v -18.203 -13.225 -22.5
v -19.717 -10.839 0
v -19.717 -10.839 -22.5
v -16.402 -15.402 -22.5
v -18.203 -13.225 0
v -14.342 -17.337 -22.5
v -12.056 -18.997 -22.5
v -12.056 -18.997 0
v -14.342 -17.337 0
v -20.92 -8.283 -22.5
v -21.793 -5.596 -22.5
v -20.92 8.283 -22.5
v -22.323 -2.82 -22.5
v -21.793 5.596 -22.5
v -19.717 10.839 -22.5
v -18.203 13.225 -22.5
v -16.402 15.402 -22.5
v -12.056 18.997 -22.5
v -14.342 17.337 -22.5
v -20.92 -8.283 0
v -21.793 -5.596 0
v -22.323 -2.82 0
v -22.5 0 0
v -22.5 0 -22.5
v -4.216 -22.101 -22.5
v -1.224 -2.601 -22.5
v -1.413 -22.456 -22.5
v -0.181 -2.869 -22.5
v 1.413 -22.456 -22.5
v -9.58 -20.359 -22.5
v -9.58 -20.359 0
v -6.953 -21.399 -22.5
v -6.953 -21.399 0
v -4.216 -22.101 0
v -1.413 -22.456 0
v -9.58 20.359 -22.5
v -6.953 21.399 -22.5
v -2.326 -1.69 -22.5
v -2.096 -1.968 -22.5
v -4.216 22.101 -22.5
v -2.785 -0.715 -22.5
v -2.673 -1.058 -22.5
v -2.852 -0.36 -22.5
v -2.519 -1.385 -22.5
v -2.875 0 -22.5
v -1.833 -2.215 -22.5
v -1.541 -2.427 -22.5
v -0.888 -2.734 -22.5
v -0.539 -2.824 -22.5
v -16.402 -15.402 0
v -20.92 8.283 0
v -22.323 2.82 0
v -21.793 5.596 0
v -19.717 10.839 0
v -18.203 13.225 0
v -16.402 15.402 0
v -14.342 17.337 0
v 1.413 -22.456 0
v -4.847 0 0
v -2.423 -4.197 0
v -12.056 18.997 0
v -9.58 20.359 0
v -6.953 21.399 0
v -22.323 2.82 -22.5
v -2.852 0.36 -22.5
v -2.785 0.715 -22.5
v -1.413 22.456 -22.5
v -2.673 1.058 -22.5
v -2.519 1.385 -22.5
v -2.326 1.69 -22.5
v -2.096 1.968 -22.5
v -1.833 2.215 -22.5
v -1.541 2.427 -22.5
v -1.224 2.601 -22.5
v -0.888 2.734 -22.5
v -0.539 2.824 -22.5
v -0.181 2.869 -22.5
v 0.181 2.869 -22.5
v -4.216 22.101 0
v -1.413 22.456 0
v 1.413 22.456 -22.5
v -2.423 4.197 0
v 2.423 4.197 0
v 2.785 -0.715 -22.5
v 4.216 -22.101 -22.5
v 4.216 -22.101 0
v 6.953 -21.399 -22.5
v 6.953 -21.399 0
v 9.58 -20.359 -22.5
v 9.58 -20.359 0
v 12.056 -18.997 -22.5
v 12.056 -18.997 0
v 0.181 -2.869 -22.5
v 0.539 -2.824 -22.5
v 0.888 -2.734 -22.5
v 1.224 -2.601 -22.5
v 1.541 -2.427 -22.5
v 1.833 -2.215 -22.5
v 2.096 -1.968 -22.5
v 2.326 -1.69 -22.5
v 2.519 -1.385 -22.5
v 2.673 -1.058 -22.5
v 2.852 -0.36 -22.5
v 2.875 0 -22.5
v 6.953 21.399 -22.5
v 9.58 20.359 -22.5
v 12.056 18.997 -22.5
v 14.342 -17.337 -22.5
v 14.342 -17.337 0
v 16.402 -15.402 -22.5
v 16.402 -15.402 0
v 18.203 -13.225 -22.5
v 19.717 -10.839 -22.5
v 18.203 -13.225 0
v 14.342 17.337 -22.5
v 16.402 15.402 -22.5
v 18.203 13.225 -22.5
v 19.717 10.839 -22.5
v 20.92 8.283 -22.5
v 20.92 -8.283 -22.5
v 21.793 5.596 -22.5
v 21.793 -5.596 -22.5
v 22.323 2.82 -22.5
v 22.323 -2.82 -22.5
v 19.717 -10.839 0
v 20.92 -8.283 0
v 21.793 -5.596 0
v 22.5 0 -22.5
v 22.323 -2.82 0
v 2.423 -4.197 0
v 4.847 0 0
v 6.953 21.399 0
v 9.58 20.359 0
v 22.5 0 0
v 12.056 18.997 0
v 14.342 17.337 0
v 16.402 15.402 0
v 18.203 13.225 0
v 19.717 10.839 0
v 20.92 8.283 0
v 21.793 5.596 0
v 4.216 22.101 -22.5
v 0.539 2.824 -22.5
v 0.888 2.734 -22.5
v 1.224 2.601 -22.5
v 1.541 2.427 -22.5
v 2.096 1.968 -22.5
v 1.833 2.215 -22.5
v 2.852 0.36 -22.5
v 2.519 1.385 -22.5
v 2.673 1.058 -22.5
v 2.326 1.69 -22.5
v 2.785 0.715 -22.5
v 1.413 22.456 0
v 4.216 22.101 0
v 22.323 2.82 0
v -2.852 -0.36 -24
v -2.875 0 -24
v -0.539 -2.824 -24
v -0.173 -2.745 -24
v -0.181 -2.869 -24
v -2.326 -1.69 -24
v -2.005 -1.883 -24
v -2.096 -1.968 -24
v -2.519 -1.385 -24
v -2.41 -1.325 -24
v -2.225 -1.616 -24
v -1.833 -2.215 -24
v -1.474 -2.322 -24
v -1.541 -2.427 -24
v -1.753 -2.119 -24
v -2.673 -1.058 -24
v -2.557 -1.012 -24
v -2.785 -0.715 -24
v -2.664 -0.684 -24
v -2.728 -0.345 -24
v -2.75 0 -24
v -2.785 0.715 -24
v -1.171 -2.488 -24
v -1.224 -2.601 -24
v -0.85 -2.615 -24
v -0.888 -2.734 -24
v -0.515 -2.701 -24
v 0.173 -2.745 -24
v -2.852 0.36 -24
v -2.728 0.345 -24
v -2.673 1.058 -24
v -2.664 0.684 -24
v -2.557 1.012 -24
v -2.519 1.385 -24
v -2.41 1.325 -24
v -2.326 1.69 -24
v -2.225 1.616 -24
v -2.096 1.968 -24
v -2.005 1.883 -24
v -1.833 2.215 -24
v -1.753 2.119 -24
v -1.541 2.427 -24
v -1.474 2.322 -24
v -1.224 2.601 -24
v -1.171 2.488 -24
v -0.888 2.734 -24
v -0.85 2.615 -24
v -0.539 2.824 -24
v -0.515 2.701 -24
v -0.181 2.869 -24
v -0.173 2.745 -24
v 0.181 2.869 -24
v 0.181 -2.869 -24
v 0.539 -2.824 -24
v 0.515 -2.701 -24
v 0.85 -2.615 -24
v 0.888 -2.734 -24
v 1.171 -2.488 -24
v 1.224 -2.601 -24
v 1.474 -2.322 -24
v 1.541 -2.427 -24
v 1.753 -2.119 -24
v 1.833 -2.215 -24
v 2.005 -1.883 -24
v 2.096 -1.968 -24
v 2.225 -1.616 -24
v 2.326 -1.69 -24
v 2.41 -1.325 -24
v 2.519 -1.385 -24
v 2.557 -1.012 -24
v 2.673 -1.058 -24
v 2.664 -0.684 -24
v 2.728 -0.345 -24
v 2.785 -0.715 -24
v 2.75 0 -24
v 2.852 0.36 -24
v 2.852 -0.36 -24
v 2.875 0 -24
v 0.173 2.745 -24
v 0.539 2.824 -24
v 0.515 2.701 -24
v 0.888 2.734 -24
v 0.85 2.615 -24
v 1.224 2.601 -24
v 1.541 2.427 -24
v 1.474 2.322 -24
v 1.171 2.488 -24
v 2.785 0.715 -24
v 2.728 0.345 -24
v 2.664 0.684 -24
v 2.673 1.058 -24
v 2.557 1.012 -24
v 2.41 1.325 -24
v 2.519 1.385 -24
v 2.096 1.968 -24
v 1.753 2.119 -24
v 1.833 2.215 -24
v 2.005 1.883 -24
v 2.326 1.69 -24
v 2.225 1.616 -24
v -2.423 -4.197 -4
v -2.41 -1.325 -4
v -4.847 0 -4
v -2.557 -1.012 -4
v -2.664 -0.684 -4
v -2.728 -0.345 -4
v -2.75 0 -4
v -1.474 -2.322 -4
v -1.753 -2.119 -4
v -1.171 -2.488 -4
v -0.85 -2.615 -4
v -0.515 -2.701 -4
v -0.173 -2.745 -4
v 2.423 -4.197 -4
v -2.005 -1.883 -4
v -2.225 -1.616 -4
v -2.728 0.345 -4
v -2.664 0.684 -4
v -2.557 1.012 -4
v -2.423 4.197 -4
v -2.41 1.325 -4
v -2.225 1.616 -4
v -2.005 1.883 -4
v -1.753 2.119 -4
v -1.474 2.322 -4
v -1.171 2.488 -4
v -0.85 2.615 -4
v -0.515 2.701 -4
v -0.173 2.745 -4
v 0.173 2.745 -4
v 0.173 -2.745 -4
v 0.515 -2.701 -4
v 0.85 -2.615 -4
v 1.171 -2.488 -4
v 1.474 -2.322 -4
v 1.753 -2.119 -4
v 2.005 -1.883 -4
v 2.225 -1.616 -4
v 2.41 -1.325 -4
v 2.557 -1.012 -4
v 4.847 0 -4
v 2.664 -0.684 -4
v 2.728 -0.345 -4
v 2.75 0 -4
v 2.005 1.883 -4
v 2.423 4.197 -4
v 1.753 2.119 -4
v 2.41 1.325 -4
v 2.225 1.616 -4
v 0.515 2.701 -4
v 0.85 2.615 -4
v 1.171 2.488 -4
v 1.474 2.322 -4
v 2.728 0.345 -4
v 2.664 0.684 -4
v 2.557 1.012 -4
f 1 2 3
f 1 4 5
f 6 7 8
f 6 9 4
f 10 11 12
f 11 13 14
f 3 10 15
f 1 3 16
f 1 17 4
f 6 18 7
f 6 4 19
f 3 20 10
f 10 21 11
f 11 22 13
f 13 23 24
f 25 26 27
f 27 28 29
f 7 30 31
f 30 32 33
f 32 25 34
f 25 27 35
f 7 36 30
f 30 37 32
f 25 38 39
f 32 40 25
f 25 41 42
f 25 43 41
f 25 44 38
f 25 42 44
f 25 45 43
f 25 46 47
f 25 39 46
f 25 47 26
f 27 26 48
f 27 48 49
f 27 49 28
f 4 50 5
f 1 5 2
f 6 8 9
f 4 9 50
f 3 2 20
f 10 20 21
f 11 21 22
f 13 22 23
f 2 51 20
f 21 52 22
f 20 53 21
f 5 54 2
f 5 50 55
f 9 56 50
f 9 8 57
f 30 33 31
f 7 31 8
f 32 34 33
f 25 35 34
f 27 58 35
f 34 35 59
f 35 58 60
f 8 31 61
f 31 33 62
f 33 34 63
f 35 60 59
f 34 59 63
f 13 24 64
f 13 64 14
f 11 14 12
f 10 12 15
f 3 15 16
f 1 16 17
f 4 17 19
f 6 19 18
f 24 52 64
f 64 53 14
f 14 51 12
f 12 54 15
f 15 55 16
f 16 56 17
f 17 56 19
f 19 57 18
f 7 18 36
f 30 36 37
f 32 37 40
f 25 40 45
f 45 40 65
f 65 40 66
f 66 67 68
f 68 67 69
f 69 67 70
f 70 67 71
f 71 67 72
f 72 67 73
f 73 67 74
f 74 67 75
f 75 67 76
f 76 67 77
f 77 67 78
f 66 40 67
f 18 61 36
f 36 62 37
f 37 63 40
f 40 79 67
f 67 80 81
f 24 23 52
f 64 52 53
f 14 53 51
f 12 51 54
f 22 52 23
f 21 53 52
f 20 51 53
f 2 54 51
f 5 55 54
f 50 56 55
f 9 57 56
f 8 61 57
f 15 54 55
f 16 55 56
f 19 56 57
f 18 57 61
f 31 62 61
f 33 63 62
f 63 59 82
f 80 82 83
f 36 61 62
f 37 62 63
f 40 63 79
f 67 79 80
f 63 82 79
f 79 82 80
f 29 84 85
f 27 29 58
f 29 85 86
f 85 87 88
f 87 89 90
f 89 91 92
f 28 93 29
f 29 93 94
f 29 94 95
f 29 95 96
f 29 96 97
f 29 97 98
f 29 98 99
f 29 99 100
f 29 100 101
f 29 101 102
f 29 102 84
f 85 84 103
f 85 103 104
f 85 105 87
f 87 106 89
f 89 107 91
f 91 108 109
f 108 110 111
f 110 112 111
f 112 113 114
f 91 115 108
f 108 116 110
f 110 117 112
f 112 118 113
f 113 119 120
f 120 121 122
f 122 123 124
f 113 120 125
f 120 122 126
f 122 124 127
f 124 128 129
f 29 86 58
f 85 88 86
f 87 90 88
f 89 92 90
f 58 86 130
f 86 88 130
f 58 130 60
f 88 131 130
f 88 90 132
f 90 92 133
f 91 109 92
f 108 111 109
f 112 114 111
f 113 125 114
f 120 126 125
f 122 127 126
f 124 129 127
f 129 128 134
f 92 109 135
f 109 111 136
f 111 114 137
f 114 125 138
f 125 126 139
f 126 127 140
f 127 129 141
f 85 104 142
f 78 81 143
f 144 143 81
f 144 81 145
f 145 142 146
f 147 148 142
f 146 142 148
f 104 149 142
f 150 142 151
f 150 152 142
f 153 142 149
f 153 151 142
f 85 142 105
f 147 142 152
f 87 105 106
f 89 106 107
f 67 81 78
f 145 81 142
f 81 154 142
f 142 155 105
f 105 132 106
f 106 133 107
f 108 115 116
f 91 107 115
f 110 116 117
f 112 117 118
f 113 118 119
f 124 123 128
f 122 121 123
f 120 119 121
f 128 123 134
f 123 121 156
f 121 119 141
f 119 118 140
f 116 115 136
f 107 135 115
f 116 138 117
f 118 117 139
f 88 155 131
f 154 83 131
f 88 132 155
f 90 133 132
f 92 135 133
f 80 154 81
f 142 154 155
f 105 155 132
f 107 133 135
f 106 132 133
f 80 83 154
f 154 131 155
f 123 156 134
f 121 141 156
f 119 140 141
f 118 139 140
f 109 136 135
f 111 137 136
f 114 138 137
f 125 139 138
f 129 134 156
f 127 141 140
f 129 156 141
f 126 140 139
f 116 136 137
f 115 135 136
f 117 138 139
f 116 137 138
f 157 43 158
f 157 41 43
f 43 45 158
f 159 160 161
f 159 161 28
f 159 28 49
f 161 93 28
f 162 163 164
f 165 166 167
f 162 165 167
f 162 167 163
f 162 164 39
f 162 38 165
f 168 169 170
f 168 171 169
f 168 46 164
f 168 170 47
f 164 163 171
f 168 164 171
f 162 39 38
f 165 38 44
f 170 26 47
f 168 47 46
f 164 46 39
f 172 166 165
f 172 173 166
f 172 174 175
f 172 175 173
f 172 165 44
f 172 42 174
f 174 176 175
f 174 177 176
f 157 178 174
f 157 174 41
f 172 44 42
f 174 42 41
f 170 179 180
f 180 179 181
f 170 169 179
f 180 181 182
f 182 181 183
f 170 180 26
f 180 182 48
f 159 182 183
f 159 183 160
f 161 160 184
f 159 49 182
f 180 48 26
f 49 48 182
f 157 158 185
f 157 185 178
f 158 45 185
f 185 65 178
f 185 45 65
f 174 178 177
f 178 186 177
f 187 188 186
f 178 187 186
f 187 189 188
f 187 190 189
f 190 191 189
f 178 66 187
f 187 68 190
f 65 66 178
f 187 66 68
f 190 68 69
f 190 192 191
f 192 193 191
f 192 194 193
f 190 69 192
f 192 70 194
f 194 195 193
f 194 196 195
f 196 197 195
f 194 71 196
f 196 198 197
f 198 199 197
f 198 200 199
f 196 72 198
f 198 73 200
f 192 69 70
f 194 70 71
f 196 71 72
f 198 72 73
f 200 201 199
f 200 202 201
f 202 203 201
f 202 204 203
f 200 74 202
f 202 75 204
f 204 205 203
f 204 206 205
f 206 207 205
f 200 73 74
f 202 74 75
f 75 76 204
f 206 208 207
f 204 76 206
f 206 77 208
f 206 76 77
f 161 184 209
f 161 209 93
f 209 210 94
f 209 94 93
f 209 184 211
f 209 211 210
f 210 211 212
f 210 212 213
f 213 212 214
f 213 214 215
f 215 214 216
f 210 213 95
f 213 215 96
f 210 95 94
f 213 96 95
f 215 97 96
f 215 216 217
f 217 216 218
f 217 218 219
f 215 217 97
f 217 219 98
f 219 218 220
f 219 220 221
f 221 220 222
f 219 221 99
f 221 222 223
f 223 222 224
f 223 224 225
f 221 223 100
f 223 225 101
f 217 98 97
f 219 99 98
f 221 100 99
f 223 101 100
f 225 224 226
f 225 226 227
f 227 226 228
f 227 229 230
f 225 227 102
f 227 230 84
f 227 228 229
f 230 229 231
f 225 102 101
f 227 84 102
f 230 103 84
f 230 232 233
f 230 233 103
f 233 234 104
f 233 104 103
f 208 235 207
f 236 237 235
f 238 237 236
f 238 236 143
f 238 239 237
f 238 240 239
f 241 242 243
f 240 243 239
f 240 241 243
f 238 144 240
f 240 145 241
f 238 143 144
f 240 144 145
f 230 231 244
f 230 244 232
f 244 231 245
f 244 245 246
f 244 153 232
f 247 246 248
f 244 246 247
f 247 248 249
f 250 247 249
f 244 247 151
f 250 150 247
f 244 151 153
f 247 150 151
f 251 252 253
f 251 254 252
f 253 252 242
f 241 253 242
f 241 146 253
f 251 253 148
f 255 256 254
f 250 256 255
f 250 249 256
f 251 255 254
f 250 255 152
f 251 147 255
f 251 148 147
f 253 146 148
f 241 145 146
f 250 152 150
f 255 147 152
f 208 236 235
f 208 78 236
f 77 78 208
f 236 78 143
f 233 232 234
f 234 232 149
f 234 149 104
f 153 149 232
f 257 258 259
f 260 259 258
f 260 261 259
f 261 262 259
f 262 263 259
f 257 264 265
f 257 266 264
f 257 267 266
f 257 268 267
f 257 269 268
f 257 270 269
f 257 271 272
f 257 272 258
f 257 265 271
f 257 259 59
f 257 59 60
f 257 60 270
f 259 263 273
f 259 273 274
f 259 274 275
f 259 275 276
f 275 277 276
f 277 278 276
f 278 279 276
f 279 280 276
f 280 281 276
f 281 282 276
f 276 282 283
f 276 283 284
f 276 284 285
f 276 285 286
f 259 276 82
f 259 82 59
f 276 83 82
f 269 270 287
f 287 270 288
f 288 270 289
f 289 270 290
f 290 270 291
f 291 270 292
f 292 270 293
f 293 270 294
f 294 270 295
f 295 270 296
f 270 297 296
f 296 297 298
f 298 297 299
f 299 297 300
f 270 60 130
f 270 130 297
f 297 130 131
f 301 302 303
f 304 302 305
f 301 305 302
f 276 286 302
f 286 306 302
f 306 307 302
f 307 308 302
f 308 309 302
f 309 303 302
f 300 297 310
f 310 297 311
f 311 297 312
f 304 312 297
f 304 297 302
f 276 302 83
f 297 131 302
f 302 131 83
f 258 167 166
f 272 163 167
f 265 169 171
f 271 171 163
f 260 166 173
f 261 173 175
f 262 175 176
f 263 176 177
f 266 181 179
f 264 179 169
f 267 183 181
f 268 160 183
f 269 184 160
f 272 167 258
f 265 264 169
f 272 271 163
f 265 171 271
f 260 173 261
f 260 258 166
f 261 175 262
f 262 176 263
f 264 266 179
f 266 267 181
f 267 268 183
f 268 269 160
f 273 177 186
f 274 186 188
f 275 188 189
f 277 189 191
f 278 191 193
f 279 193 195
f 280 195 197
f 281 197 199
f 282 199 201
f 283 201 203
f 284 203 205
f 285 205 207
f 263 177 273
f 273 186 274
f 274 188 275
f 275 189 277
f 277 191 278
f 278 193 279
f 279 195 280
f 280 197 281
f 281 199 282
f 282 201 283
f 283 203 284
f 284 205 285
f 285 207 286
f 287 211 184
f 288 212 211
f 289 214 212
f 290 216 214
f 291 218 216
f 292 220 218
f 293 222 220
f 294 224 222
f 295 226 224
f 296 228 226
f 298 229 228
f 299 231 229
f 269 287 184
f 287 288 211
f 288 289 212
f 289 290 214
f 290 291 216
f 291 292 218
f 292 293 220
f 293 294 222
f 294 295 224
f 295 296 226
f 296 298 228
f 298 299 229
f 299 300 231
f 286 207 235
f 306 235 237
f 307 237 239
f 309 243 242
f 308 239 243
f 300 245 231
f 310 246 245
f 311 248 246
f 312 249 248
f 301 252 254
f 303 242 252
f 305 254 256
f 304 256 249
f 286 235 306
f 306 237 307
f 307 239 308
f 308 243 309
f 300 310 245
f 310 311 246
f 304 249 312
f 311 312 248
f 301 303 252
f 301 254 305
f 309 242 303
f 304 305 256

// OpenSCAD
$fn = 50;

difference() {
	union() {
		translate(v = [0, 0, -22.5]) {
			cylinder(h = 22.5, r = 22.5);
		}
		#translate(v = [0, 0, -24.0]) {
			cylinder(h = 24, r = 2.875);
		}
	}
	union() {
		translate(v = [0, 0, 0]) {
			rotate(a = [0, 0, 0]) {
				difference() {
					union() {
						translate(v = [0, 0, -4]) {
							linear_extrude(height = 4) {
								polygon(points = [[4.8468, 0.0], [2.4234000000000004, 4.197451927062417], [-2.423399999999999, 4.197451927062417], [-4.8468, 5.935618106107392e-16], [-2.423400000000002, -4.197451927062416], [2.423399999999997, -4.197451927062419]]);
							}
						}
					}
					union();
				}
			}
		}
		#translate(v = [0, 0, -100.0]) {
			cylinder(h = 200, r = 2.75);
		}
	}
}
